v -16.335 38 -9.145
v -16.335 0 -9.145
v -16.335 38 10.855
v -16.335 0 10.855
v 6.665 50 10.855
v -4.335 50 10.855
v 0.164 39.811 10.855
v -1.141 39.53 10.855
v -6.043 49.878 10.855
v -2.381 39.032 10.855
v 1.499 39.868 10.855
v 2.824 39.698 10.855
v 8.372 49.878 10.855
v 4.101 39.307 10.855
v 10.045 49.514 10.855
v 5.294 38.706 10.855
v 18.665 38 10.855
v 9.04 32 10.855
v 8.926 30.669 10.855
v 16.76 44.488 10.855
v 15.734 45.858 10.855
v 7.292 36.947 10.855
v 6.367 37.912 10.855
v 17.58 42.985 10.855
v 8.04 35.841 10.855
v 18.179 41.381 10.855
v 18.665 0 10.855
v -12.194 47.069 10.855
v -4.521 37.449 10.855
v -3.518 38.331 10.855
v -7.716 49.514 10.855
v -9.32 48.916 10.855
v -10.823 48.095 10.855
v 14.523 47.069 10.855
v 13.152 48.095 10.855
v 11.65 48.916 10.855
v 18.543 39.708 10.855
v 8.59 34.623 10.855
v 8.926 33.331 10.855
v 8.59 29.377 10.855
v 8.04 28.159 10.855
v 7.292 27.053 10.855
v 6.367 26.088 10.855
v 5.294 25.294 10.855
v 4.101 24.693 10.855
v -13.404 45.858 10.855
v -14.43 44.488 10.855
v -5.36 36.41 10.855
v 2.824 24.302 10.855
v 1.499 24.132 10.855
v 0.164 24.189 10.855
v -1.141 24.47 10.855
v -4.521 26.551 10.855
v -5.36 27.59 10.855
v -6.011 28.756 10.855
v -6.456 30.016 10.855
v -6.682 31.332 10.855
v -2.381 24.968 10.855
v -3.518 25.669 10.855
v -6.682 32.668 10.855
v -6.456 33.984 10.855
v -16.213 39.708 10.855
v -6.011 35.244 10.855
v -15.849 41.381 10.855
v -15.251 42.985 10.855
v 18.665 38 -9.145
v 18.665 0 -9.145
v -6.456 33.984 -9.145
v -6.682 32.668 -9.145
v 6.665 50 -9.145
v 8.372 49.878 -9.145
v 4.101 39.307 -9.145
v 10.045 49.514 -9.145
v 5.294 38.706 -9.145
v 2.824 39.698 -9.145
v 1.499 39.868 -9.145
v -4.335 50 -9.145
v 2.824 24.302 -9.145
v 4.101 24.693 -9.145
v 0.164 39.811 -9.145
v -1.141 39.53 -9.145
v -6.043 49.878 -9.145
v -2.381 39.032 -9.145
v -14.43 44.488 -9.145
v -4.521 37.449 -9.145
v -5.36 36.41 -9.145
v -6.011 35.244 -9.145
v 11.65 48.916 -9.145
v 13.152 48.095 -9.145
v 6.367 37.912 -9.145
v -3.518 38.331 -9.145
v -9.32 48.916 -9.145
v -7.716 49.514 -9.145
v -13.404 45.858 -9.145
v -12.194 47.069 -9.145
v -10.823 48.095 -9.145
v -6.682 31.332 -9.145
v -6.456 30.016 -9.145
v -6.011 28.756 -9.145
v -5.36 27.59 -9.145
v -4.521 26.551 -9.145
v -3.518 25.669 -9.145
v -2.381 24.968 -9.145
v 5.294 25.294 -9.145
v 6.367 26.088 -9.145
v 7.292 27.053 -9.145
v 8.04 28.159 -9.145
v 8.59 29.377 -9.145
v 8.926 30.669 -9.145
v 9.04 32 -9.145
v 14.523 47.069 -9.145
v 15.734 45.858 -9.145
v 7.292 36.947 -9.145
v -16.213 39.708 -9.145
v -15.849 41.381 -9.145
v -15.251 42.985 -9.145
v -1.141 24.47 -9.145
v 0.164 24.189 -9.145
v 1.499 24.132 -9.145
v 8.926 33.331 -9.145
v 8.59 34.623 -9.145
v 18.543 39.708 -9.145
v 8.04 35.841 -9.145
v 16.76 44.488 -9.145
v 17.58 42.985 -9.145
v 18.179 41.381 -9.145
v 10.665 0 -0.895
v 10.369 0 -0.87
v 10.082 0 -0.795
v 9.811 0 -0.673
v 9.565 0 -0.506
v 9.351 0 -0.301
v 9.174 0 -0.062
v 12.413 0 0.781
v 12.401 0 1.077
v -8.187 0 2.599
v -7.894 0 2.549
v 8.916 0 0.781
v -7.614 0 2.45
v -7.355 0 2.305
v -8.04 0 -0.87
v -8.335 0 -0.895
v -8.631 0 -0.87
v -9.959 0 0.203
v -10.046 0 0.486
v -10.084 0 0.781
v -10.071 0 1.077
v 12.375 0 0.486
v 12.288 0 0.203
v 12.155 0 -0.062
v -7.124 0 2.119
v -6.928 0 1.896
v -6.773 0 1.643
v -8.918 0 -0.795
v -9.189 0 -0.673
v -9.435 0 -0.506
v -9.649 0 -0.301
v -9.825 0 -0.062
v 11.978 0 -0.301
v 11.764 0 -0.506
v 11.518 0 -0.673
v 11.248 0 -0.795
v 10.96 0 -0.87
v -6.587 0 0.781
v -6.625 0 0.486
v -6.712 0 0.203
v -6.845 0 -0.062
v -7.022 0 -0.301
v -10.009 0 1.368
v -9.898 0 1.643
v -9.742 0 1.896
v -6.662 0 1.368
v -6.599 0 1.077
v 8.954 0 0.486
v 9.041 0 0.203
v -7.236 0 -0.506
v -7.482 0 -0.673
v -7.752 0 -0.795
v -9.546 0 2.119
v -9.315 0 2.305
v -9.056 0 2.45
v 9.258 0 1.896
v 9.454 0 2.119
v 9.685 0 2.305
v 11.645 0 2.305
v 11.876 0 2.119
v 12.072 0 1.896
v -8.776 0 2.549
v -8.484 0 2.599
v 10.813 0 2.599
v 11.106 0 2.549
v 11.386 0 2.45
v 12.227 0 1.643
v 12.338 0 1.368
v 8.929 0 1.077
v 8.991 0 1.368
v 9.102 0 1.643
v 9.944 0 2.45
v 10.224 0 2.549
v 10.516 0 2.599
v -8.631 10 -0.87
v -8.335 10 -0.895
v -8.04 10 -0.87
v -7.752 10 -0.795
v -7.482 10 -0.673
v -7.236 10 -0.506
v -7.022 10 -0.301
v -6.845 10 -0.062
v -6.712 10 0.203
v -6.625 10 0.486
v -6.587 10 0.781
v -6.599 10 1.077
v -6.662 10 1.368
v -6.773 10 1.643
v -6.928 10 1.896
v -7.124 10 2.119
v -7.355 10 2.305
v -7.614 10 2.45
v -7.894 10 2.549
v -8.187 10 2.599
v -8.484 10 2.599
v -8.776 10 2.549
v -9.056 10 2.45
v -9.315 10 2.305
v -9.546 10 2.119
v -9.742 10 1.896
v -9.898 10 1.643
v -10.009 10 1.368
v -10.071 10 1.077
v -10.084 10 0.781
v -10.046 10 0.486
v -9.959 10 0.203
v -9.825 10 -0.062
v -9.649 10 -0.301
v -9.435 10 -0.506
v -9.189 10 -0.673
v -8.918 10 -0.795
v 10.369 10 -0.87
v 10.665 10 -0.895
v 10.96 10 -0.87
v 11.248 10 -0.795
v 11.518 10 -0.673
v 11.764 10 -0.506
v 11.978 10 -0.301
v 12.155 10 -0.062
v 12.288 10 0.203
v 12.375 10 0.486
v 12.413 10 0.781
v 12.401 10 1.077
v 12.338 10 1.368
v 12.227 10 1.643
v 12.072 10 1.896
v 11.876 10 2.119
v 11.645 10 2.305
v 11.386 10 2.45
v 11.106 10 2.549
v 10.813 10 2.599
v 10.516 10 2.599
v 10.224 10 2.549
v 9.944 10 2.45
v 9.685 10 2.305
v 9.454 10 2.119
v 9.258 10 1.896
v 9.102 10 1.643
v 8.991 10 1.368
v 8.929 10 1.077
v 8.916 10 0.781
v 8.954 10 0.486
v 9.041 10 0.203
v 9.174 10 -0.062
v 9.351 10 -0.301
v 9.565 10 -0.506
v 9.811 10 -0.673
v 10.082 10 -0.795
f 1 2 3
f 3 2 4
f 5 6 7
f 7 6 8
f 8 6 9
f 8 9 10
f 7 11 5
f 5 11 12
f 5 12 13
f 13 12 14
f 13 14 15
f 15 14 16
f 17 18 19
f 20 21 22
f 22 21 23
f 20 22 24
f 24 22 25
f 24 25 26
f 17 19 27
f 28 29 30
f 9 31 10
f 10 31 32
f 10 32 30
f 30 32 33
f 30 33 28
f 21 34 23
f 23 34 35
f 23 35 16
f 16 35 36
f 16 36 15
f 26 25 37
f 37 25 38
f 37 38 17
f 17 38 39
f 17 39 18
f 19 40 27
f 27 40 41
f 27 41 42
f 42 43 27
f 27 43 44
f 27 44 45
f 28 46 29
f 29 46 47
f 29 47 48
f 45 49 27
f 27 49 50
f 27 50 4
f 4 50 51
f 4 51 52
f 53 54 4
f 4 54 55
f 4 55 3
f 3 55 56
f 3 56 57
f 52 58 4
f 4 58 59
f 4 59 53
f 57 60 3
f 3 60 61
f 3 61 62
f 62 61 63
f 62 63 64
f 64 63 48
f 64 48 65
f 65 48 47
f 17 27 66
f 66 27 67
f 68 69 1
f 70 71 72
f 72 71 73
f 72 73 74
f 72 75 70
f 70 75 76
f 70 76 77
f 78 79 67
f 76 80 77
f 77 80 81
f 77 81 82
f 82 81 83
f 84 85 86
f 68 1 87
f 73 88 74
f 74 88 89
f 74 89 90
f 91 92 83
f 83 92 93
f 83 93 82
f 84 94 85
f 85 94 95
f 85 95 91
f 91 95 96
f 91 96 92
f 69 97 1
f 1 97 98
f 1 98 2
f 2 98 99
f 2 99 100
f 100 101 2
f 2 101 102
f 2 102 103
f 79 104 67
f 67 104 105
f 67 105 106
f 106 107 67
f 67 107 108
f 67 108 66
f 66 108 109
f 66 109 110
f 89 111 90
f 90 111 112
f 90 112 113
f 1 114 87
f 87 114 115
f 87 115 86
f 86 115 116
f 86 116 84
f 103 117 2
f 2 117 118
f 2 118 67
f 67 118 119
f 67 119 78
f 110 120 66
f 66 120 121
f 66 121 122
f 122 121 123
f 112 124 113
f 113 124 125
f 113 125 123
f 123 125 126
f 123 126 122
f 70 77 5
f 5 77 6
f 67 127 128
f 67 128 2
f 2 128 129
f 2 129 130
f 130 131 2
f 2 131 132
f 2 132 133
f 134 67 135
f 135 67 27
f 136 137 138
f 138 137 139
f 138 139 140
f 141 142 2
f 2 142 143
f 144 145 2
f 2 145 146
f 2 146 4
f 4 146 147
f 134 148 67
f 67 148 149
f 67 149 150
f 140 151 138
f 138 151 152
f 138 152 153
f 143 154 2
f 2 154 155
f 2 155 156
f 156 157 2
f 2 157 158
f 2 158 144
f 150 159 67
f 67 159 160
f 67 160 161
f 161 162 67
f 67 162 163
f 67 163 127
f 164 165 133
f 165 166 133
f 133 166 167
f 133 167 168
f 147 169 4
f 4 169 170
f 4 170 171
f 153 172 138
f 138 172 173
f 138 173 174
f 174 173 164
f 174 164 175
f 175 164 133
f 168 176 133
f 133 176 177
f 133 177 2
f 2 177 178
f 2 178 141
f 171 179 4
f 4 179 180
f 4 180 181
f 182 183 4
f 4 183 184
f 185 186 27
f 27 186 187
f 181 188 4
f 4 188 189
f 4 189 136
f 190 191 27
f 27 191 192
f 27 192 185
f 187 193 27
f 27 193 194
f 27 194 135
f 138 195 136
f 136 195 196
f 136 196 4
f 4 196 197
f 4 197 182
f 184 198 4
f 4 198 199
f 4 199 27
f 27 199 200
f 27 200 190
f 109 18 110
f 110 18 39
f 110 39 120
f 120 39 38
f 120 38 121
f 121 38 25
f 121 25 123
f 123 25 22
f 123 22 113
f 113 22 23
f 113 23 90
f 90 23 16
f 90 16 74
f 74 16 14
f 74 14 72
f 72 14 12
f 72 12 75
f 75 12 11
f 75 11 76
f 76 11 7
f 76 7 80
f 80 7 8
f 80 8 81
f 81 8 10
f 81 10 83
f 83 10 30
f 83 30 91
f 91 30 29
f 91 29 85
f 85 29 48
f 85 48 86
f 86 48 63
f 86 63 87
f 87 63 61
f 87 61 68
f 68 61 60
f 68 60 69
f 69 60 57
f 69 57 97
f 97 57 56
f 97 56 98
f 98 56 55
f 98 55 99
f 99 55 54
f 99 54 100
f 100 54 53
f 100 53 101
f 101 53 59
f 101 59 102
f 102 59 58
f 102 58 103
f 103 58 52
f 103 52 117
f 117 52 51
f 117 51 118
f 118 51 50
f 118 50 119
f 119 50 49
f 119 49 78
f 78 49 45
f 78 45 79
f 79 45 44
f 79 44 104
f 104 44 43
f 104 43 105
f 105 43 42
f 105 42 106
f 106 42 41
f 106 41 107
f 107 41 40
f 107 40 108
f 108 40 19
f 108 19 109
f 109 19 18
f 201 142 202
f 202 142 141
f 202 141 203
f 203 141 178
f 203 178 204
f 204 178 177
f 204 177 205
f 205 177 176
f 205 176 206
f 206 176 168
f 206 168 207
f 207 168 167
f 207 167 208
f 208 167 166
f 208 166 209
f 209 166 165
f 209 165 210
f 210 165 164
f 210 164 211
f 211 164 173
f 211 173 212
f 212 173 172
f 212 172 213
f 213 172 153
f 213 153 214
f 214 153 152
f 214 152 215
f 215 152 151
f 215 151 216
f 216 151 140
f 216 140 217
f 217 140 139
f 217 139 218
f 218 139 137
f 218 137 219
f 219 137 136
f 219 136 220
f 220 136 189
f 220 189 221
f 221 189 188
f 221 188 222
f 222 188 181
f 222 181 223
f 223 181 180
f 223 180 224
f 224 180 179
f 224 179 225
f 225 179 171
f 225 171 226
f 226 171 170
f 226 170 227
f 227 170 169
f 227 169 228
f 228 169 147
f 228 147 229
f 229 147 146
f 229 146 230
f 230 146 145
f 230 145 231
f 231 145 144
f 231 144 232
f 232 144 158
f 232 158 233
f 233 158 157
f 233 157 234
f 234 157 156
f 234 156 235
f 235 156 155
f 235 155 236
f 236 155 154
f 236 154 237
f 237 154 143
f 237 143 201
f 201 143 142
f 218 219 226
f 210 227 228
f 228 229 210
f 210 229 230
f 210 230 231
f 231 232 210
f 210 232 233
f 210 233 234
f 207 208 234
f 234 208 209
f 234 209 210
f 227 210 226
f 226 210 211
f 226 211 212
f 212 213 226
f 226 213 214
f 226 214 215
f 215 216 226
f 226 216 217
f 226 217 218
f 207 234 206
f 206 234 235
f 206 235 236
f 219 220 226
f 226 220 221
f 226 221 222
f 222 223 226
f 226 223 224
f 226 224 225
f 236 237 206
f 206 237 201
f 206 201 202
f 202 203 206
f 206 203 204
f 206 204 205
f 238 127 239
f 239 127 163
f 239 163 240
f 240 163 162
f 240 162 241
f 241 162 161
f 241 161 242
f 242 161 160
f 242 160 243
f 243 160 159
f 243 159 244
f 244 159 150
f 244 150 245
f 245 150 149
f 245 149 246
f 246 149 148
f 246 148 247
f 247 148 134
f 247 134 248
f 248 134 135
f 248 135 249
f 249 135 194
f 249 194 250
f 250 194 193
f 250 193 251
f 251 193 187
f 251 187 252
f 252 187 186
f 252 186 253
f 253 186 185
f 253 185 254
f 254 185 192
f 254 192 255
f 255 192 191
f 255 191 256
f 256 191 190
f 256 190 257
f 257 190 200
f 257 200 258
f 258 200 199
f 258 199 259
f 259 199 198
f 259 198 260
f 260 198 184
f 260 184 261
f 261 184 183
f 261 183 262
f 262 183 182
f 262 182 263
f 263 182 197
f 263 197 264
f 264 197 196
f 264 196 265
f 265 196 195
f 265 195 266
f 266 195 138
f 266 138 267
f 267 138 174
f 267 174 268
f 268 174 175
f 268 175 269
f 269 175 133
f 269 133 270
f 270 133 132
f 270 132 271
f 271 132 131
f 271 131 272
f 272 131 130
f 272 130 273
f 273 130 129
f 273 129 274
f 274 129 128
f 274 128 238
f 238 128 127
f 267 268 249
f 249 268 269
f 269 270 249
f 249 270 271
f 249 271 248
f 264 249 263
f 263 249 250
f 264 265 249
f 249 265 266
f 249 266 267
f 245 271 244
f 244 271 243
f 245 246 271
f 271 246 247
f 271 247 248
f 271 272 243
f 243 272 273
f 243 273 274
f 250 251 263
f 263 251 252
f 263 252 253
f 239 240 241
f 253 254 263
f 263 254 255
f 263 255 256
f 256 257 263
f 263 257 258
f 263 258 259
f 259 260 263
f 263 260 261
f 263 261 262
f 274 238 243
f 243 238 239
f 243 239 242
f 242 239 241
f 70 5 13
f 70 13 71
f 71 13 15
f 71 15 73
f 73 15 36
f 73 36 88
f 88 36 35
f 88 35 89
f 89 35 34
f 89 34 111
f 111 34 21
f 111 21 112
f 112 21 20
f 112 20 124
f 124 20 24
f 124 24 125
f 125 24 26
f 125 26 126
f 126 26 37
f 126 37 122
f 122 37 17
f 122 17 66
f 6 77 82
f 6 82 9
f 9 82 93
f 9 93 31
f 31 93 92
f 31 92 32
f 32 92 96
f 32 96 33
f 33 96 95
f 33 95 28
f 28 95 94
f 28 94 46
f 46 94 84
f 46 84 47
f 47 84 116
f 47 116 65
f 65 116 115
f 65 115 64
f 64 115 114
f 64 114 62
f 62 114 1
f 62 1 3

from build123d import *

# Parameters (mm, degrees)
SKETCH1_W           = 35
SKETCH1_H           = 20
BOSS_EXTRUDE1_DEPTH = 50
SKETCH2_R           = 7.875
CUT_EXTRUDE1_DEPTH  = 21
SKETCH3_R           = 1.75
CUT_EXTRUDE2_DEPTH  = 10
FILLET1_R           = 12


with BuildPart() as part:
    # Sketch1 → Boss-Extrude1 (new body)
    with BuildSketch(Plane(origin=(0, 0, 0), x_dir=(1, 0, 0), z_dir=(0, 1, 0))):
        with Locations((1.164675851, -0.855170824)):
            Rectangle(SKETCH1_W, SKETCH1_H)
    extrude(amount=BOSS_EXTRUDE1_DEPTH)

    # Sketch2 → Cut-Extrude1 (cut, through all)
    with BuildSketch(Plane.XY.offset(10.855170824)):
        with Locations((1.164675851, 32)):
            Circle(SKETCH2_R)
    extrude(amount=-CUT_EXTRUDE1_DEPTH, mode=Mode.SUBTRACT)

    # Sketch3 → Cut-Extrude2 (cut)
    with BuildSketch(Plane.XZ):
        with Locations((-8.335324149, 0.855170824)):
            Circle(SKETCH3_R)
        with Locations((10.664675851, 0.855170824)):
            Circle(SKETCH3_R)
    extrude(amount=-CUT_EXTRUDE2_DEPTH, mode=Mode.SUBTRACT)

    # Fillet1
    fillet1_edges = [part.edges().sort_by_distance(p)[0] for p in [
        (18.664675851, 50, 0.855170824),
        (-16.335324149, 50, 0.855170824),
    ]]
    fillet(fillet1_edges, radius=FILLET1_R)


solid = part.part
